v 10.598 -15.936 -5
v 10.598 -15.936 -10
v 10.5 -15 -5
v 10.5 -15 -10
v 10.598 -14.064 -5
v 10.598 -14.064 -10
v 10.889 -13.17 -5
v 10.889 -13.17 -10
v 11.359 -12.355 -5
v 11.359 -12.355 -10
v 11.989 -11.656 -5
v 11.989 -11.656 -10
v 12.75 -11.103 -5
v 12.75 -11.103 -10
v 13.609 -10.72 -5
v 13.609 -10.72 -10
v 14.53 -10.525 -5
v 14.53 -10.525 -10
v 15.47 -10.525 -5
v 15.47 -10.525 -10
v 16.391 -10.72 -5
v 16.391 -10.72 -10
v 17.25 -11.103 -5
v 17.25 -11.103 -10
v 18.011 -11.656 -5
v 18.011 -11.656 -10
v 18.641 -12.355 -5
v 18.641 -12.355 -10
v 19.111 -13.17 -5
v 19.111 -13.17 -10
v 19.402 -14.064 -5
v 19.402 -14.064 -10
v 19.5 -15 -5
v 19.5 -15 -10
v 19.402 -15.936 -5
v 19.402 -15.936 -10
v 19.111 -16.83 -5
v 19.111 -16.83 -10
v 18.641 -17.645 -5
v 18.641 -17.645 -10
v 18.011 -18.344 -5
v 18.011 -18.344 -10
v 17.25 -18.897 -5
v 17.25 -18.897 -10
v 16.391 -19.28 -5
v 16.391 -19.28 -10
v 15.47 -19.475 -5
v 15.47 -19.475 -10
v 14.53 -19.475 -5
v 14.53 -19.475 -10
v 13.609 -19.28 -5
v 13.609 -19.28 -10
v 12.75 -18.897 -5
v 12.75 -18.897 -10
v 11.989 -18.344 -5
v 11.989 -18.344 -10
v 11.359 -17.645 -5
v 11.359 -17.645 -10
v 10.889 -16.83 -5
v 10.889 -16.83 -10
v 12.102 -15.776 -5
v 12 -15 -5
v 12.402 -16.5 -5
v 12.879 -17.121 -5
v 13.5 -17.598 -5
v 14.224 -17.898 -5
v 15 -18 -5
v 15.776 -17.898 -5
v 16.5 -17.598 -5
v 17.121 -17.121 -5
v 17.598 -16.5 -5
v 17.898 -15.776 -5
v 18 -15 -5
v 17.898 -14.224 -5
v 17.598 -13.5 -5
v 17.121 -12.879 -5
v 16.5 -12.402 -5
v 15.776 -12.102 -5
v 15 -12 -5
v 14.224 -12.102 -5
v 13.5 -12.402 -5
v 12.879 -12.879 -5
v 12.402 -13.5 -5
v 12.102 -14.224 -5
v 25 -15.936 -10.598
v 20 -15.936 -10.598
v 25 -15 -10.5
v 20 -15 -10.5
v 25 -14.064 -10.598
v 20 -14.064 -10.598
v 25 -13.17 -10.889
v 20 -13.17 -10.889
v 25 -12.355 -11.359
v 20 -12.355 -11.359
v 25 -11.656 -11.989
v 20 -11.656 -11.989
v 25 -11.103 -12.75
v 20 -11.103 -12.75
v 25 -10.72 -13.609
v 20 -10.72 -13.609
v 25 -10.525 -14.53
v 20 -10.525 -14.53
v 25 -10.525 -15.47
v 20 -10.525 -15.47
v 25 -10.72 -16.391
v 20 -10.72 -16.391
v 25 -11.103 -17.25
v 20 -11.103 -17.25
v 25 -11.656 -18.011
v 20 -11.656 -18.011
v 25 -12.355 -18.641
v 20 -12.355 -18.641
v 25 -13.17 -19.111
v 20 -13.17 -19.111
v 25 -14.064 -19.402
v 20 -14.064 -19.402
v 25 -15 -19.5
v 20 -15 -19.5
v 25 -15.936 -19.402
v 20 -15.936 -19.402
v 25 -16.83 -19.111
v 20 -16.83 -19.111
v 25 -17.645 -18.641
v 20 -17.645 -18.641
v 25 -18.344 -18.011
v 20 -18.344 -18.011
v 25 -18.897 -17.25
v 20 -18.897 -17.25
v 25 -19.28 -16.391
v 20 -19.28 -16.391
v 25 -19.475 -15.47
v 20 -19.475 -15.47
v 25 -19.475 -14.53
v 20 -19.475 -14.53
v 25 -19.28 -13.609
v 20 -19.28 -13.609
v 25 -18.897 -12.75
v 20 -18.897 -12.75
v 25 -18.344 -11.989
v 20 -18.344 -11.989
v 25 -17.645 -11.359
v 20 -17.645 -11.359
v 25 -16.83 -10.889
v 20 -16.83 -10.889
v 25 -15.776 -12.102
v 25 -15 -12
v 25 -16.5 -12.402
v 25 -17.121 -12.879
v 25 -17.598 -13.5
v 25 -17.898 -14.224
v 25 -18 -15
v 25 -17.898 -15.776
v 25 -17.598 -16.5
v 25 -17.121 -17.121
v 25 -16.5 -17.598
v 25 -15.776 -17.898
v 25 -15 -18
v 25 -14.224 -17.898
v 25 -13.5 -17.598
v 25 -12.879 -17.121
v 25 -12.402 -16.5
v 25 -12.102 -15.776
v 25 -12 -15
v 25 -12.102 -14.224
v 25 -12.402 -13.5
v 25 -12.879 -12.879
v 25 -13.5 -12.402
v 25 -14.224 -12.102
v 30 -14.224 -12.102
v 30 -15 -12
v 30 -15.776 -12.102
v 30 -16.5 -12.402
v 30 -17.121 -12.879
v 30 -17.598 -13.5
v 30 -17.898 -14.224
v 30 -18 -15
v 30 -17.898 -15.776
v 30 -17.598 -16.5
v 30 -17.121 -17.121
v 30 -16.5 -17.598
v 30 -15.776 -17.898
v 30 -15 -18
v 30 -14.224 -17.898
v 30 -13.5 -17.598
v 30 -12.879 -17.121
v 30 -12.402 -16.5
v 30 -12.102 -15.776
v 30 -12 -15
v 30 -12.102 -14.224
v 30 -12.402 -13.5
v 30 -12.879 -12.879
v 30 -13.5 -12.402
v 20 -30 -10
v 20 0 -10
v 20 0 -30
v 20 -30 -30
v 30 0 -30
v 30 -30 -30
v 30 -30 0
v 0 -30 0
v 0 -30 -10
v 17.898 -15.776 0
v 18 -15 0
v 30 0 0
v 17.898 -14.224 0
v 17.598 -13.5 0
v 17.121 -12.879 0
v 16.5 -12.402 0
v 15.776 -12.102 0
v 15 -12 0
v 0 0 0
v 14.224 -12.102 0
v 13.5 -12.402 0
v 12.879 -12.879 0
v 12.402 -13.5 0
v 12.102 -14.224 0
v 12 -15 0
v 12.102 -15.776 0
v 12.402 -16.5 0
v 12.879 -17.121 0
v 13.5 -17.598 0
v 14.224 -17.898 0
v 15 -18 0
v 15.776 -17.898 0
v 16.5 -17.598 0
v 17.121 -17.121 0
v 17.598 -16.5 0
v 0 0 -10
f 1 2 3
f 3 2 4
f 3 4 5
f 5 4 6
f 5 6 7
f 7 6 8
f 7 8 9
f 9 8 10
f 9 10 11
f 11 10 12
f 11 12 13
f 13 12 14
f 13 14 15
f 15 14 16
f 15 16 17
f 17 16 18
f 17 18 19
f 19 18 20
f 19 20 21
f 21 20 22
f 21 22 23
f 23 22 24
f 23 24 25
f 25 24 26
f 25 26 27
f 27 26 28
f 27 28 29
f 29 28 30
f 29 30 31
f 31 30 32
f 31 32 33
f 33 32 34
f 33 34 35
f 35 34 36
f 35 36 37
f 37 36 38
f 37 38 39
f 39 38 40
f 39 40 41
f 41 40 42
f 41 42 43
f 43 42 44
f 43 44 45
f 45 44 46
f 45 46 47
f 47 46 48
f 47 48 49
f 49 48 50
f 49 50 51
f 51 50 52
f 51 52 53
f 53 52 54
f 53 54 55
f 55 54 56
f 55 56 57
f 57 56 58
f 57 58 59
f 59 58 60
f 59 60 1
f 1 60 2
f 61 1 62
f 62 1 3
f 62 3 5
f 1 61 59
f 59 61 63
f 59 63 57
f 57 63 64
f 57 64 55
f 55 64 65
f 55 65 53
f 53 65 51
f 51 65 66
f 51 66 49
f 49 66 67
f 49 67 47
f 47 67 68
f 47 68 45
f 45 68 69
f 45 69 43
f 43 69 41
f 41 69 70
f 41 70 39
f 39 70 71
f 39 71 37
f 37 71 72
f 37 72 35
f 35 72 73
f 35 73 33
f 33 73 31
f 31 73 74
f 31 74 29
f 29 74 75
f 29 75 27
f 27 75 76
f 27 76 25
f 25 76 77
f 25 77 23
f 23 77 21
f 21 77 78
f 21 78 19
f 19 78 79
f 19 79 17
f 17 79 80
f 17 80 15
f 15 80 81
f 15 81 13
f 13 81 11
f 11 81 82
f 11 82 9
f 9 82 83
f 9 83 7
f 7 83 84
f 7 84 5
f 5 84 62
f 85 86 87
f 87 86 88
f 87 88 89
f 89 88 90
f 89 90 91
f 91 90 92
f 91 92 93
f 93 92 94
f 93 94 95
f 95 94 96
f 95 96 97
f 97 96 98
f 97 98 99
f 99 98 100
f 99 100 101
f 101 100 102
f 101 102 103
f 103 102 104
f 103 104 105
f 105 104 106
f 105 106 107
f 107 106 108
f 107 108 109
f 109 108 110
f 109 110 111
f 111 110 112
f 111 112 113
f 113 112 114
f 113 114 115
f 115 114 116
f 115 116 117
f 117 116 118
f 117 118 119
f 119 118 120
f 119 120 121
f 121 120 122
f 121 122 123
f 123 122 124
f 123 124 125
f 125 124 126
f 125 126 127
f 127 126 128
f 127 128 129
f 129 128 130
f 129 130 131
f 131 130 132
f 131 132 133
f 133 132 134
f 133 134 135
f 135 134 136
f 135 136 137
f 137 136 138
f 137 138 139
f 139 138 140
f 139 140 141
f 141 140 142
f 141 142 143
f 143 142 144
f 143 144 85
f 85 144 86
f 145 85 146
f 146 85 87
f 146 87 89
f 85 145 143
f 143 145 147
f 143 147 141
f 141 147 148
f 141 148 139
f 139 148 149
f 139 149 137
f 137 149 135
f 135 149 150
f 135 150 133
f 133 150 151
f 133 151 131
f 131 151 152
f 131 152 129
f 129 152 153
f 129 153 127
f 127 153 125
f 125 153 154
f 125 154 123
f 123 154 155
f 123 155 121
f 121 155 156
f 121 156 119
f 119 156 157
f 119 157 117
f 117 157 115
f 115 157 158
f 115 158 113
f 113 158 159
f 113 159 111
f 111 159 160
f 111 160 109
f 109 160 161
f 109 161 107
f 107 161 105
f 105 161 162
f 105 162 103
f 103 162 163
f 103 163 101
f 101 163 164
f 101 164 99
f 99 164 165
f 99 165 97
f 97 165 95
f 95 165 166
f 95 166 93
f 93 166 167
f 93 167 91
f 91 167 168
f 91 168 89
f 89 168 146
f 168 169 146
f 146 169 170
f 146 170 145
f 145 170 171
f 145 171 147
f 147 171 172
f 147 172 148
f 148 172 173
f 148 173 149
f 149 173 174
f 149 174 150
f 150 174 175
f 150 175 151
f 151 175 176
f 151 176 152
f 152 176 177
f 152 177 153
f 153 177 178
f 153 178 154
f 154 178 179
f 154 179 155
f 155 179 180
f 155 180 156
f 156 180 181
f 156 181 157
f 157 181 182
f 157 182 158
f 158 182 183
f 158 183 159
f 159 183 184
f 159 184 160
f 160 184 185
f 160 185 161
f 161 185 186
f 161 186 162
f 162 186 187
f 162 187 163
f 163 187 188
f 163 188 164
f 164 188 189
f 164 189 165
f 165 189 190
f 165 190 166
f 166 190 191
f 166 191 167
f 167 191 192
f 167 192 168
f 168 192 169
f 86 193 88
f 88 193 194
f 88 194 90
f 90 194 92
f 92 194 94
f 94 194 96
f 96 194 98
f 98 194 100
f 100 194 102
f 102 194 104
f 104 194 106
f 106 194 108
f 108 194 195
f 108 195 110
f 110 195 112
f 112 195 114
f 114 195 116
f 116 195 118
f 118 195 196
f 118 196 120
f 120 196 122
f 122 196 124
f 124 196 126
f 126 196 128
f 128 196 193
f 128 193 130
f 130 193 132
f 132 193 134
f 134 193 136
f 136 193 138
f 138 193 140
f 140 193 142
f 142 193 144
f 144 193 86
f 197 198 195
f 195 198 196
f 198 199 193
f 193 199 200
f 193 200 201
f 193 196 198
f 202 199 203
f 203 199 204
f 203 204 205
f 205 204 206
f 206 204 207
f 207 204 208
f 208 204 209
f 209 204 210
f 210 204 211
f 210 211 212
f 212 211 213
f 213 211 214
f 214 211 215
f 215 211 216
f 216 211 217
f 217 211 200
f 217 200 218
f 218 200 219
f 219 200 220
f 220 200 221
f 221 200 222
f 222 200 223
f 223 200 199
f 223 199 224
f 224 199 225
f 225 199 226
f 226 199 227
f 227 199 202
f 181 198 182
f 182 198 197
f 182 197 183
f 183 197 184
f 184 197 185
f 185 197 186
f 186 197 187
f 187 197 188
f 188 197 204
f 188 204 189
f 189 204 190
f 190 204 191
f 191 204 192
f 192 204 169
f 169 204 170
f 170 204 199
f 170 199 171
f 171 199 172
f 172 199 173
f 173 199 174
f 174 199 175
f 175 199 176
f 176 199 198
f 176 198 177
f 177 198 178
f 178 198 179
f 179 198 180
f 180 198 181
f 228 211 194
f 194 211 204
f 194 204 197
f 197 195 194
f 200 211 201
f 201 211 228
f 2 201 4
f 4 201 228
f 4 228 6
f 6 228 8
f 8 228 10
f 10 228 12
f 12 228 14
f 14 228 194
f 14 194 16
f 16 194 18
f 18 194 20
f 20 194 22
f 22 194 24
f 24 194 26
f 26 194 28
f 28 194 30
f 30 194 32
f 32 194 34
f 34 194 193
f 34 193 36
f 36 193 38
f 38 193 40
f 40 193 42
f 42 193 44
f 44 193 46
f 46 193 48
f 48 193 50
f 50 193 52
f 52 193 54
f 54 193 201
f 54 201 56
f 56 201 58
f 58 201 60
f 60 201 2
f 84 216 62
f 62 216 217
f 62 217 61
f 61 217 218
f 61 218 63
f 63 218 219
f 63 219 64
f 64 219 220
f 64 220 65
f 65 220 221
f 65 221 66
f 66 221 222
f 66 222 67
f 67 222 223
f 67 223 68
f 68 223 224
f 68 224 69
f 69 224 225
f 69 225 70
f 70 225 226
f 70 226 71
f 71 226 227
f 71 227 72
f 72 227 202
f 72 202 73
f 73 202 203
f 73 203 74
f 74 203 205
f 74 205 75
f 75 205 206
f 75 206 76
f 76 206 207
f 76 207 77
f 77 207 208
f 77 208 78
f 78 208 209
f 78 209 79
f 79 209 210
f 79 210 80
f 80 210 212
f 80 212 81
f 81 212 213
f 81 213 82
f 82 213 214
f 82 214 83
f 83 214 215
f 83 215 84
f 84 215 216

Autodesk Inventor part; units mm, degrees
ref_plane "YZ Plane" through (0, 0, 0) normal (1, 0, 0) x (0, 1, 0)
ref_plane "XZ Plane" through (0, 0, 0) normal (0, 1, 0) x (-1, 0, 0)
ref_plane "XY Plane" through (0, 0, 0) normal (0, 0, 1) x (1, 0, 0)
sketch "Sketch34" plane through (0, 0, 0) normal (0, 0, 1) x (1, 0, 0)
  line L0 (0, 0) -> (30, 0)
  line L1 (30, 0) -> (30, -30)
  line L2 (30, -30) -> (0, -30)
  line L3 (0, -30) -> (0, 0)
  dimension "d112" = 30
  dimension "d113" = 30
extrude "Extrusion25" add sketch "Sketch34" against normal blind 10
sketch "Sketch35" plane through (30, -30, 0) normal (1, 0, 0) x (0, 0, -1)
  line L0 (0, 30) -> (10, 30) projected
  line L1 (0, 30) -> (30, 30)
  line L2 (30, 30) -> (30, 0)
  line L3 (30, 0) -> (0, 0)
  line L4 (0, 0) -> (0, 30)
  dimension "d116" = 30
  dimension "d117" = 30
extrude "Extrusion26" add sketch "Sketch35" against normal blind 10
sketch "Sketch37" plane through (30, -30, 0) normal (1, 0, 0) x (0, 0, -1)
  point P0 (0, 30)
sketch "Sketch38" plane through (30, -30, 0) normal (1, 0, 0) x (0, 0, -1)
  circle A0 centre (15, 15) radius 3
  point P0 (0, 30)
  dimension "d123" = 6
extrude "Extrusion28" cut sketch "Sketch38" against normal blind 10
sketch "Sketch39" plane through (30, -30, 0) normal (1, 0, 0) x (0, 0, -1)
  point P0 (0, 30)
sketch "Sketch43" plane through (20, -30, 0) normal (-1, 0, 0) x (0, 0, 1)
  circle A0 centre (-15, 15) radius 4.5
  point P0 (0, 30)
  dimension "d135" = 9
extrude "Extrusion32" cut sketch "Sketch43" against normal blind 5
sketch "Sketch44" plane through (0, 0, -10) normal (0, 0, -1) x (-1, 0, 0)
  circle A0 centre (-15, -15) radius 4.5
  point P0 (0, 0)
  dimension "d138" = 9
extrude "Extrusion33" cut sketch "Sketch44" against normal blind 5
sketch "Sketch45" plane through (0, 0, 0) normal (0, 0, 1) x (1, 0, 0)
  circle A0 centre (15, -15) radius 4.5 projected
  circle A1 centre (15, -15) radius 3
  point P0 (0, 0)
  dimension "d141" = 6
extrude "Extrusion34" cut sketch "Sketch45" against normal blind 10 contours A1
properties part number "tunnel corner bracket_v02"
